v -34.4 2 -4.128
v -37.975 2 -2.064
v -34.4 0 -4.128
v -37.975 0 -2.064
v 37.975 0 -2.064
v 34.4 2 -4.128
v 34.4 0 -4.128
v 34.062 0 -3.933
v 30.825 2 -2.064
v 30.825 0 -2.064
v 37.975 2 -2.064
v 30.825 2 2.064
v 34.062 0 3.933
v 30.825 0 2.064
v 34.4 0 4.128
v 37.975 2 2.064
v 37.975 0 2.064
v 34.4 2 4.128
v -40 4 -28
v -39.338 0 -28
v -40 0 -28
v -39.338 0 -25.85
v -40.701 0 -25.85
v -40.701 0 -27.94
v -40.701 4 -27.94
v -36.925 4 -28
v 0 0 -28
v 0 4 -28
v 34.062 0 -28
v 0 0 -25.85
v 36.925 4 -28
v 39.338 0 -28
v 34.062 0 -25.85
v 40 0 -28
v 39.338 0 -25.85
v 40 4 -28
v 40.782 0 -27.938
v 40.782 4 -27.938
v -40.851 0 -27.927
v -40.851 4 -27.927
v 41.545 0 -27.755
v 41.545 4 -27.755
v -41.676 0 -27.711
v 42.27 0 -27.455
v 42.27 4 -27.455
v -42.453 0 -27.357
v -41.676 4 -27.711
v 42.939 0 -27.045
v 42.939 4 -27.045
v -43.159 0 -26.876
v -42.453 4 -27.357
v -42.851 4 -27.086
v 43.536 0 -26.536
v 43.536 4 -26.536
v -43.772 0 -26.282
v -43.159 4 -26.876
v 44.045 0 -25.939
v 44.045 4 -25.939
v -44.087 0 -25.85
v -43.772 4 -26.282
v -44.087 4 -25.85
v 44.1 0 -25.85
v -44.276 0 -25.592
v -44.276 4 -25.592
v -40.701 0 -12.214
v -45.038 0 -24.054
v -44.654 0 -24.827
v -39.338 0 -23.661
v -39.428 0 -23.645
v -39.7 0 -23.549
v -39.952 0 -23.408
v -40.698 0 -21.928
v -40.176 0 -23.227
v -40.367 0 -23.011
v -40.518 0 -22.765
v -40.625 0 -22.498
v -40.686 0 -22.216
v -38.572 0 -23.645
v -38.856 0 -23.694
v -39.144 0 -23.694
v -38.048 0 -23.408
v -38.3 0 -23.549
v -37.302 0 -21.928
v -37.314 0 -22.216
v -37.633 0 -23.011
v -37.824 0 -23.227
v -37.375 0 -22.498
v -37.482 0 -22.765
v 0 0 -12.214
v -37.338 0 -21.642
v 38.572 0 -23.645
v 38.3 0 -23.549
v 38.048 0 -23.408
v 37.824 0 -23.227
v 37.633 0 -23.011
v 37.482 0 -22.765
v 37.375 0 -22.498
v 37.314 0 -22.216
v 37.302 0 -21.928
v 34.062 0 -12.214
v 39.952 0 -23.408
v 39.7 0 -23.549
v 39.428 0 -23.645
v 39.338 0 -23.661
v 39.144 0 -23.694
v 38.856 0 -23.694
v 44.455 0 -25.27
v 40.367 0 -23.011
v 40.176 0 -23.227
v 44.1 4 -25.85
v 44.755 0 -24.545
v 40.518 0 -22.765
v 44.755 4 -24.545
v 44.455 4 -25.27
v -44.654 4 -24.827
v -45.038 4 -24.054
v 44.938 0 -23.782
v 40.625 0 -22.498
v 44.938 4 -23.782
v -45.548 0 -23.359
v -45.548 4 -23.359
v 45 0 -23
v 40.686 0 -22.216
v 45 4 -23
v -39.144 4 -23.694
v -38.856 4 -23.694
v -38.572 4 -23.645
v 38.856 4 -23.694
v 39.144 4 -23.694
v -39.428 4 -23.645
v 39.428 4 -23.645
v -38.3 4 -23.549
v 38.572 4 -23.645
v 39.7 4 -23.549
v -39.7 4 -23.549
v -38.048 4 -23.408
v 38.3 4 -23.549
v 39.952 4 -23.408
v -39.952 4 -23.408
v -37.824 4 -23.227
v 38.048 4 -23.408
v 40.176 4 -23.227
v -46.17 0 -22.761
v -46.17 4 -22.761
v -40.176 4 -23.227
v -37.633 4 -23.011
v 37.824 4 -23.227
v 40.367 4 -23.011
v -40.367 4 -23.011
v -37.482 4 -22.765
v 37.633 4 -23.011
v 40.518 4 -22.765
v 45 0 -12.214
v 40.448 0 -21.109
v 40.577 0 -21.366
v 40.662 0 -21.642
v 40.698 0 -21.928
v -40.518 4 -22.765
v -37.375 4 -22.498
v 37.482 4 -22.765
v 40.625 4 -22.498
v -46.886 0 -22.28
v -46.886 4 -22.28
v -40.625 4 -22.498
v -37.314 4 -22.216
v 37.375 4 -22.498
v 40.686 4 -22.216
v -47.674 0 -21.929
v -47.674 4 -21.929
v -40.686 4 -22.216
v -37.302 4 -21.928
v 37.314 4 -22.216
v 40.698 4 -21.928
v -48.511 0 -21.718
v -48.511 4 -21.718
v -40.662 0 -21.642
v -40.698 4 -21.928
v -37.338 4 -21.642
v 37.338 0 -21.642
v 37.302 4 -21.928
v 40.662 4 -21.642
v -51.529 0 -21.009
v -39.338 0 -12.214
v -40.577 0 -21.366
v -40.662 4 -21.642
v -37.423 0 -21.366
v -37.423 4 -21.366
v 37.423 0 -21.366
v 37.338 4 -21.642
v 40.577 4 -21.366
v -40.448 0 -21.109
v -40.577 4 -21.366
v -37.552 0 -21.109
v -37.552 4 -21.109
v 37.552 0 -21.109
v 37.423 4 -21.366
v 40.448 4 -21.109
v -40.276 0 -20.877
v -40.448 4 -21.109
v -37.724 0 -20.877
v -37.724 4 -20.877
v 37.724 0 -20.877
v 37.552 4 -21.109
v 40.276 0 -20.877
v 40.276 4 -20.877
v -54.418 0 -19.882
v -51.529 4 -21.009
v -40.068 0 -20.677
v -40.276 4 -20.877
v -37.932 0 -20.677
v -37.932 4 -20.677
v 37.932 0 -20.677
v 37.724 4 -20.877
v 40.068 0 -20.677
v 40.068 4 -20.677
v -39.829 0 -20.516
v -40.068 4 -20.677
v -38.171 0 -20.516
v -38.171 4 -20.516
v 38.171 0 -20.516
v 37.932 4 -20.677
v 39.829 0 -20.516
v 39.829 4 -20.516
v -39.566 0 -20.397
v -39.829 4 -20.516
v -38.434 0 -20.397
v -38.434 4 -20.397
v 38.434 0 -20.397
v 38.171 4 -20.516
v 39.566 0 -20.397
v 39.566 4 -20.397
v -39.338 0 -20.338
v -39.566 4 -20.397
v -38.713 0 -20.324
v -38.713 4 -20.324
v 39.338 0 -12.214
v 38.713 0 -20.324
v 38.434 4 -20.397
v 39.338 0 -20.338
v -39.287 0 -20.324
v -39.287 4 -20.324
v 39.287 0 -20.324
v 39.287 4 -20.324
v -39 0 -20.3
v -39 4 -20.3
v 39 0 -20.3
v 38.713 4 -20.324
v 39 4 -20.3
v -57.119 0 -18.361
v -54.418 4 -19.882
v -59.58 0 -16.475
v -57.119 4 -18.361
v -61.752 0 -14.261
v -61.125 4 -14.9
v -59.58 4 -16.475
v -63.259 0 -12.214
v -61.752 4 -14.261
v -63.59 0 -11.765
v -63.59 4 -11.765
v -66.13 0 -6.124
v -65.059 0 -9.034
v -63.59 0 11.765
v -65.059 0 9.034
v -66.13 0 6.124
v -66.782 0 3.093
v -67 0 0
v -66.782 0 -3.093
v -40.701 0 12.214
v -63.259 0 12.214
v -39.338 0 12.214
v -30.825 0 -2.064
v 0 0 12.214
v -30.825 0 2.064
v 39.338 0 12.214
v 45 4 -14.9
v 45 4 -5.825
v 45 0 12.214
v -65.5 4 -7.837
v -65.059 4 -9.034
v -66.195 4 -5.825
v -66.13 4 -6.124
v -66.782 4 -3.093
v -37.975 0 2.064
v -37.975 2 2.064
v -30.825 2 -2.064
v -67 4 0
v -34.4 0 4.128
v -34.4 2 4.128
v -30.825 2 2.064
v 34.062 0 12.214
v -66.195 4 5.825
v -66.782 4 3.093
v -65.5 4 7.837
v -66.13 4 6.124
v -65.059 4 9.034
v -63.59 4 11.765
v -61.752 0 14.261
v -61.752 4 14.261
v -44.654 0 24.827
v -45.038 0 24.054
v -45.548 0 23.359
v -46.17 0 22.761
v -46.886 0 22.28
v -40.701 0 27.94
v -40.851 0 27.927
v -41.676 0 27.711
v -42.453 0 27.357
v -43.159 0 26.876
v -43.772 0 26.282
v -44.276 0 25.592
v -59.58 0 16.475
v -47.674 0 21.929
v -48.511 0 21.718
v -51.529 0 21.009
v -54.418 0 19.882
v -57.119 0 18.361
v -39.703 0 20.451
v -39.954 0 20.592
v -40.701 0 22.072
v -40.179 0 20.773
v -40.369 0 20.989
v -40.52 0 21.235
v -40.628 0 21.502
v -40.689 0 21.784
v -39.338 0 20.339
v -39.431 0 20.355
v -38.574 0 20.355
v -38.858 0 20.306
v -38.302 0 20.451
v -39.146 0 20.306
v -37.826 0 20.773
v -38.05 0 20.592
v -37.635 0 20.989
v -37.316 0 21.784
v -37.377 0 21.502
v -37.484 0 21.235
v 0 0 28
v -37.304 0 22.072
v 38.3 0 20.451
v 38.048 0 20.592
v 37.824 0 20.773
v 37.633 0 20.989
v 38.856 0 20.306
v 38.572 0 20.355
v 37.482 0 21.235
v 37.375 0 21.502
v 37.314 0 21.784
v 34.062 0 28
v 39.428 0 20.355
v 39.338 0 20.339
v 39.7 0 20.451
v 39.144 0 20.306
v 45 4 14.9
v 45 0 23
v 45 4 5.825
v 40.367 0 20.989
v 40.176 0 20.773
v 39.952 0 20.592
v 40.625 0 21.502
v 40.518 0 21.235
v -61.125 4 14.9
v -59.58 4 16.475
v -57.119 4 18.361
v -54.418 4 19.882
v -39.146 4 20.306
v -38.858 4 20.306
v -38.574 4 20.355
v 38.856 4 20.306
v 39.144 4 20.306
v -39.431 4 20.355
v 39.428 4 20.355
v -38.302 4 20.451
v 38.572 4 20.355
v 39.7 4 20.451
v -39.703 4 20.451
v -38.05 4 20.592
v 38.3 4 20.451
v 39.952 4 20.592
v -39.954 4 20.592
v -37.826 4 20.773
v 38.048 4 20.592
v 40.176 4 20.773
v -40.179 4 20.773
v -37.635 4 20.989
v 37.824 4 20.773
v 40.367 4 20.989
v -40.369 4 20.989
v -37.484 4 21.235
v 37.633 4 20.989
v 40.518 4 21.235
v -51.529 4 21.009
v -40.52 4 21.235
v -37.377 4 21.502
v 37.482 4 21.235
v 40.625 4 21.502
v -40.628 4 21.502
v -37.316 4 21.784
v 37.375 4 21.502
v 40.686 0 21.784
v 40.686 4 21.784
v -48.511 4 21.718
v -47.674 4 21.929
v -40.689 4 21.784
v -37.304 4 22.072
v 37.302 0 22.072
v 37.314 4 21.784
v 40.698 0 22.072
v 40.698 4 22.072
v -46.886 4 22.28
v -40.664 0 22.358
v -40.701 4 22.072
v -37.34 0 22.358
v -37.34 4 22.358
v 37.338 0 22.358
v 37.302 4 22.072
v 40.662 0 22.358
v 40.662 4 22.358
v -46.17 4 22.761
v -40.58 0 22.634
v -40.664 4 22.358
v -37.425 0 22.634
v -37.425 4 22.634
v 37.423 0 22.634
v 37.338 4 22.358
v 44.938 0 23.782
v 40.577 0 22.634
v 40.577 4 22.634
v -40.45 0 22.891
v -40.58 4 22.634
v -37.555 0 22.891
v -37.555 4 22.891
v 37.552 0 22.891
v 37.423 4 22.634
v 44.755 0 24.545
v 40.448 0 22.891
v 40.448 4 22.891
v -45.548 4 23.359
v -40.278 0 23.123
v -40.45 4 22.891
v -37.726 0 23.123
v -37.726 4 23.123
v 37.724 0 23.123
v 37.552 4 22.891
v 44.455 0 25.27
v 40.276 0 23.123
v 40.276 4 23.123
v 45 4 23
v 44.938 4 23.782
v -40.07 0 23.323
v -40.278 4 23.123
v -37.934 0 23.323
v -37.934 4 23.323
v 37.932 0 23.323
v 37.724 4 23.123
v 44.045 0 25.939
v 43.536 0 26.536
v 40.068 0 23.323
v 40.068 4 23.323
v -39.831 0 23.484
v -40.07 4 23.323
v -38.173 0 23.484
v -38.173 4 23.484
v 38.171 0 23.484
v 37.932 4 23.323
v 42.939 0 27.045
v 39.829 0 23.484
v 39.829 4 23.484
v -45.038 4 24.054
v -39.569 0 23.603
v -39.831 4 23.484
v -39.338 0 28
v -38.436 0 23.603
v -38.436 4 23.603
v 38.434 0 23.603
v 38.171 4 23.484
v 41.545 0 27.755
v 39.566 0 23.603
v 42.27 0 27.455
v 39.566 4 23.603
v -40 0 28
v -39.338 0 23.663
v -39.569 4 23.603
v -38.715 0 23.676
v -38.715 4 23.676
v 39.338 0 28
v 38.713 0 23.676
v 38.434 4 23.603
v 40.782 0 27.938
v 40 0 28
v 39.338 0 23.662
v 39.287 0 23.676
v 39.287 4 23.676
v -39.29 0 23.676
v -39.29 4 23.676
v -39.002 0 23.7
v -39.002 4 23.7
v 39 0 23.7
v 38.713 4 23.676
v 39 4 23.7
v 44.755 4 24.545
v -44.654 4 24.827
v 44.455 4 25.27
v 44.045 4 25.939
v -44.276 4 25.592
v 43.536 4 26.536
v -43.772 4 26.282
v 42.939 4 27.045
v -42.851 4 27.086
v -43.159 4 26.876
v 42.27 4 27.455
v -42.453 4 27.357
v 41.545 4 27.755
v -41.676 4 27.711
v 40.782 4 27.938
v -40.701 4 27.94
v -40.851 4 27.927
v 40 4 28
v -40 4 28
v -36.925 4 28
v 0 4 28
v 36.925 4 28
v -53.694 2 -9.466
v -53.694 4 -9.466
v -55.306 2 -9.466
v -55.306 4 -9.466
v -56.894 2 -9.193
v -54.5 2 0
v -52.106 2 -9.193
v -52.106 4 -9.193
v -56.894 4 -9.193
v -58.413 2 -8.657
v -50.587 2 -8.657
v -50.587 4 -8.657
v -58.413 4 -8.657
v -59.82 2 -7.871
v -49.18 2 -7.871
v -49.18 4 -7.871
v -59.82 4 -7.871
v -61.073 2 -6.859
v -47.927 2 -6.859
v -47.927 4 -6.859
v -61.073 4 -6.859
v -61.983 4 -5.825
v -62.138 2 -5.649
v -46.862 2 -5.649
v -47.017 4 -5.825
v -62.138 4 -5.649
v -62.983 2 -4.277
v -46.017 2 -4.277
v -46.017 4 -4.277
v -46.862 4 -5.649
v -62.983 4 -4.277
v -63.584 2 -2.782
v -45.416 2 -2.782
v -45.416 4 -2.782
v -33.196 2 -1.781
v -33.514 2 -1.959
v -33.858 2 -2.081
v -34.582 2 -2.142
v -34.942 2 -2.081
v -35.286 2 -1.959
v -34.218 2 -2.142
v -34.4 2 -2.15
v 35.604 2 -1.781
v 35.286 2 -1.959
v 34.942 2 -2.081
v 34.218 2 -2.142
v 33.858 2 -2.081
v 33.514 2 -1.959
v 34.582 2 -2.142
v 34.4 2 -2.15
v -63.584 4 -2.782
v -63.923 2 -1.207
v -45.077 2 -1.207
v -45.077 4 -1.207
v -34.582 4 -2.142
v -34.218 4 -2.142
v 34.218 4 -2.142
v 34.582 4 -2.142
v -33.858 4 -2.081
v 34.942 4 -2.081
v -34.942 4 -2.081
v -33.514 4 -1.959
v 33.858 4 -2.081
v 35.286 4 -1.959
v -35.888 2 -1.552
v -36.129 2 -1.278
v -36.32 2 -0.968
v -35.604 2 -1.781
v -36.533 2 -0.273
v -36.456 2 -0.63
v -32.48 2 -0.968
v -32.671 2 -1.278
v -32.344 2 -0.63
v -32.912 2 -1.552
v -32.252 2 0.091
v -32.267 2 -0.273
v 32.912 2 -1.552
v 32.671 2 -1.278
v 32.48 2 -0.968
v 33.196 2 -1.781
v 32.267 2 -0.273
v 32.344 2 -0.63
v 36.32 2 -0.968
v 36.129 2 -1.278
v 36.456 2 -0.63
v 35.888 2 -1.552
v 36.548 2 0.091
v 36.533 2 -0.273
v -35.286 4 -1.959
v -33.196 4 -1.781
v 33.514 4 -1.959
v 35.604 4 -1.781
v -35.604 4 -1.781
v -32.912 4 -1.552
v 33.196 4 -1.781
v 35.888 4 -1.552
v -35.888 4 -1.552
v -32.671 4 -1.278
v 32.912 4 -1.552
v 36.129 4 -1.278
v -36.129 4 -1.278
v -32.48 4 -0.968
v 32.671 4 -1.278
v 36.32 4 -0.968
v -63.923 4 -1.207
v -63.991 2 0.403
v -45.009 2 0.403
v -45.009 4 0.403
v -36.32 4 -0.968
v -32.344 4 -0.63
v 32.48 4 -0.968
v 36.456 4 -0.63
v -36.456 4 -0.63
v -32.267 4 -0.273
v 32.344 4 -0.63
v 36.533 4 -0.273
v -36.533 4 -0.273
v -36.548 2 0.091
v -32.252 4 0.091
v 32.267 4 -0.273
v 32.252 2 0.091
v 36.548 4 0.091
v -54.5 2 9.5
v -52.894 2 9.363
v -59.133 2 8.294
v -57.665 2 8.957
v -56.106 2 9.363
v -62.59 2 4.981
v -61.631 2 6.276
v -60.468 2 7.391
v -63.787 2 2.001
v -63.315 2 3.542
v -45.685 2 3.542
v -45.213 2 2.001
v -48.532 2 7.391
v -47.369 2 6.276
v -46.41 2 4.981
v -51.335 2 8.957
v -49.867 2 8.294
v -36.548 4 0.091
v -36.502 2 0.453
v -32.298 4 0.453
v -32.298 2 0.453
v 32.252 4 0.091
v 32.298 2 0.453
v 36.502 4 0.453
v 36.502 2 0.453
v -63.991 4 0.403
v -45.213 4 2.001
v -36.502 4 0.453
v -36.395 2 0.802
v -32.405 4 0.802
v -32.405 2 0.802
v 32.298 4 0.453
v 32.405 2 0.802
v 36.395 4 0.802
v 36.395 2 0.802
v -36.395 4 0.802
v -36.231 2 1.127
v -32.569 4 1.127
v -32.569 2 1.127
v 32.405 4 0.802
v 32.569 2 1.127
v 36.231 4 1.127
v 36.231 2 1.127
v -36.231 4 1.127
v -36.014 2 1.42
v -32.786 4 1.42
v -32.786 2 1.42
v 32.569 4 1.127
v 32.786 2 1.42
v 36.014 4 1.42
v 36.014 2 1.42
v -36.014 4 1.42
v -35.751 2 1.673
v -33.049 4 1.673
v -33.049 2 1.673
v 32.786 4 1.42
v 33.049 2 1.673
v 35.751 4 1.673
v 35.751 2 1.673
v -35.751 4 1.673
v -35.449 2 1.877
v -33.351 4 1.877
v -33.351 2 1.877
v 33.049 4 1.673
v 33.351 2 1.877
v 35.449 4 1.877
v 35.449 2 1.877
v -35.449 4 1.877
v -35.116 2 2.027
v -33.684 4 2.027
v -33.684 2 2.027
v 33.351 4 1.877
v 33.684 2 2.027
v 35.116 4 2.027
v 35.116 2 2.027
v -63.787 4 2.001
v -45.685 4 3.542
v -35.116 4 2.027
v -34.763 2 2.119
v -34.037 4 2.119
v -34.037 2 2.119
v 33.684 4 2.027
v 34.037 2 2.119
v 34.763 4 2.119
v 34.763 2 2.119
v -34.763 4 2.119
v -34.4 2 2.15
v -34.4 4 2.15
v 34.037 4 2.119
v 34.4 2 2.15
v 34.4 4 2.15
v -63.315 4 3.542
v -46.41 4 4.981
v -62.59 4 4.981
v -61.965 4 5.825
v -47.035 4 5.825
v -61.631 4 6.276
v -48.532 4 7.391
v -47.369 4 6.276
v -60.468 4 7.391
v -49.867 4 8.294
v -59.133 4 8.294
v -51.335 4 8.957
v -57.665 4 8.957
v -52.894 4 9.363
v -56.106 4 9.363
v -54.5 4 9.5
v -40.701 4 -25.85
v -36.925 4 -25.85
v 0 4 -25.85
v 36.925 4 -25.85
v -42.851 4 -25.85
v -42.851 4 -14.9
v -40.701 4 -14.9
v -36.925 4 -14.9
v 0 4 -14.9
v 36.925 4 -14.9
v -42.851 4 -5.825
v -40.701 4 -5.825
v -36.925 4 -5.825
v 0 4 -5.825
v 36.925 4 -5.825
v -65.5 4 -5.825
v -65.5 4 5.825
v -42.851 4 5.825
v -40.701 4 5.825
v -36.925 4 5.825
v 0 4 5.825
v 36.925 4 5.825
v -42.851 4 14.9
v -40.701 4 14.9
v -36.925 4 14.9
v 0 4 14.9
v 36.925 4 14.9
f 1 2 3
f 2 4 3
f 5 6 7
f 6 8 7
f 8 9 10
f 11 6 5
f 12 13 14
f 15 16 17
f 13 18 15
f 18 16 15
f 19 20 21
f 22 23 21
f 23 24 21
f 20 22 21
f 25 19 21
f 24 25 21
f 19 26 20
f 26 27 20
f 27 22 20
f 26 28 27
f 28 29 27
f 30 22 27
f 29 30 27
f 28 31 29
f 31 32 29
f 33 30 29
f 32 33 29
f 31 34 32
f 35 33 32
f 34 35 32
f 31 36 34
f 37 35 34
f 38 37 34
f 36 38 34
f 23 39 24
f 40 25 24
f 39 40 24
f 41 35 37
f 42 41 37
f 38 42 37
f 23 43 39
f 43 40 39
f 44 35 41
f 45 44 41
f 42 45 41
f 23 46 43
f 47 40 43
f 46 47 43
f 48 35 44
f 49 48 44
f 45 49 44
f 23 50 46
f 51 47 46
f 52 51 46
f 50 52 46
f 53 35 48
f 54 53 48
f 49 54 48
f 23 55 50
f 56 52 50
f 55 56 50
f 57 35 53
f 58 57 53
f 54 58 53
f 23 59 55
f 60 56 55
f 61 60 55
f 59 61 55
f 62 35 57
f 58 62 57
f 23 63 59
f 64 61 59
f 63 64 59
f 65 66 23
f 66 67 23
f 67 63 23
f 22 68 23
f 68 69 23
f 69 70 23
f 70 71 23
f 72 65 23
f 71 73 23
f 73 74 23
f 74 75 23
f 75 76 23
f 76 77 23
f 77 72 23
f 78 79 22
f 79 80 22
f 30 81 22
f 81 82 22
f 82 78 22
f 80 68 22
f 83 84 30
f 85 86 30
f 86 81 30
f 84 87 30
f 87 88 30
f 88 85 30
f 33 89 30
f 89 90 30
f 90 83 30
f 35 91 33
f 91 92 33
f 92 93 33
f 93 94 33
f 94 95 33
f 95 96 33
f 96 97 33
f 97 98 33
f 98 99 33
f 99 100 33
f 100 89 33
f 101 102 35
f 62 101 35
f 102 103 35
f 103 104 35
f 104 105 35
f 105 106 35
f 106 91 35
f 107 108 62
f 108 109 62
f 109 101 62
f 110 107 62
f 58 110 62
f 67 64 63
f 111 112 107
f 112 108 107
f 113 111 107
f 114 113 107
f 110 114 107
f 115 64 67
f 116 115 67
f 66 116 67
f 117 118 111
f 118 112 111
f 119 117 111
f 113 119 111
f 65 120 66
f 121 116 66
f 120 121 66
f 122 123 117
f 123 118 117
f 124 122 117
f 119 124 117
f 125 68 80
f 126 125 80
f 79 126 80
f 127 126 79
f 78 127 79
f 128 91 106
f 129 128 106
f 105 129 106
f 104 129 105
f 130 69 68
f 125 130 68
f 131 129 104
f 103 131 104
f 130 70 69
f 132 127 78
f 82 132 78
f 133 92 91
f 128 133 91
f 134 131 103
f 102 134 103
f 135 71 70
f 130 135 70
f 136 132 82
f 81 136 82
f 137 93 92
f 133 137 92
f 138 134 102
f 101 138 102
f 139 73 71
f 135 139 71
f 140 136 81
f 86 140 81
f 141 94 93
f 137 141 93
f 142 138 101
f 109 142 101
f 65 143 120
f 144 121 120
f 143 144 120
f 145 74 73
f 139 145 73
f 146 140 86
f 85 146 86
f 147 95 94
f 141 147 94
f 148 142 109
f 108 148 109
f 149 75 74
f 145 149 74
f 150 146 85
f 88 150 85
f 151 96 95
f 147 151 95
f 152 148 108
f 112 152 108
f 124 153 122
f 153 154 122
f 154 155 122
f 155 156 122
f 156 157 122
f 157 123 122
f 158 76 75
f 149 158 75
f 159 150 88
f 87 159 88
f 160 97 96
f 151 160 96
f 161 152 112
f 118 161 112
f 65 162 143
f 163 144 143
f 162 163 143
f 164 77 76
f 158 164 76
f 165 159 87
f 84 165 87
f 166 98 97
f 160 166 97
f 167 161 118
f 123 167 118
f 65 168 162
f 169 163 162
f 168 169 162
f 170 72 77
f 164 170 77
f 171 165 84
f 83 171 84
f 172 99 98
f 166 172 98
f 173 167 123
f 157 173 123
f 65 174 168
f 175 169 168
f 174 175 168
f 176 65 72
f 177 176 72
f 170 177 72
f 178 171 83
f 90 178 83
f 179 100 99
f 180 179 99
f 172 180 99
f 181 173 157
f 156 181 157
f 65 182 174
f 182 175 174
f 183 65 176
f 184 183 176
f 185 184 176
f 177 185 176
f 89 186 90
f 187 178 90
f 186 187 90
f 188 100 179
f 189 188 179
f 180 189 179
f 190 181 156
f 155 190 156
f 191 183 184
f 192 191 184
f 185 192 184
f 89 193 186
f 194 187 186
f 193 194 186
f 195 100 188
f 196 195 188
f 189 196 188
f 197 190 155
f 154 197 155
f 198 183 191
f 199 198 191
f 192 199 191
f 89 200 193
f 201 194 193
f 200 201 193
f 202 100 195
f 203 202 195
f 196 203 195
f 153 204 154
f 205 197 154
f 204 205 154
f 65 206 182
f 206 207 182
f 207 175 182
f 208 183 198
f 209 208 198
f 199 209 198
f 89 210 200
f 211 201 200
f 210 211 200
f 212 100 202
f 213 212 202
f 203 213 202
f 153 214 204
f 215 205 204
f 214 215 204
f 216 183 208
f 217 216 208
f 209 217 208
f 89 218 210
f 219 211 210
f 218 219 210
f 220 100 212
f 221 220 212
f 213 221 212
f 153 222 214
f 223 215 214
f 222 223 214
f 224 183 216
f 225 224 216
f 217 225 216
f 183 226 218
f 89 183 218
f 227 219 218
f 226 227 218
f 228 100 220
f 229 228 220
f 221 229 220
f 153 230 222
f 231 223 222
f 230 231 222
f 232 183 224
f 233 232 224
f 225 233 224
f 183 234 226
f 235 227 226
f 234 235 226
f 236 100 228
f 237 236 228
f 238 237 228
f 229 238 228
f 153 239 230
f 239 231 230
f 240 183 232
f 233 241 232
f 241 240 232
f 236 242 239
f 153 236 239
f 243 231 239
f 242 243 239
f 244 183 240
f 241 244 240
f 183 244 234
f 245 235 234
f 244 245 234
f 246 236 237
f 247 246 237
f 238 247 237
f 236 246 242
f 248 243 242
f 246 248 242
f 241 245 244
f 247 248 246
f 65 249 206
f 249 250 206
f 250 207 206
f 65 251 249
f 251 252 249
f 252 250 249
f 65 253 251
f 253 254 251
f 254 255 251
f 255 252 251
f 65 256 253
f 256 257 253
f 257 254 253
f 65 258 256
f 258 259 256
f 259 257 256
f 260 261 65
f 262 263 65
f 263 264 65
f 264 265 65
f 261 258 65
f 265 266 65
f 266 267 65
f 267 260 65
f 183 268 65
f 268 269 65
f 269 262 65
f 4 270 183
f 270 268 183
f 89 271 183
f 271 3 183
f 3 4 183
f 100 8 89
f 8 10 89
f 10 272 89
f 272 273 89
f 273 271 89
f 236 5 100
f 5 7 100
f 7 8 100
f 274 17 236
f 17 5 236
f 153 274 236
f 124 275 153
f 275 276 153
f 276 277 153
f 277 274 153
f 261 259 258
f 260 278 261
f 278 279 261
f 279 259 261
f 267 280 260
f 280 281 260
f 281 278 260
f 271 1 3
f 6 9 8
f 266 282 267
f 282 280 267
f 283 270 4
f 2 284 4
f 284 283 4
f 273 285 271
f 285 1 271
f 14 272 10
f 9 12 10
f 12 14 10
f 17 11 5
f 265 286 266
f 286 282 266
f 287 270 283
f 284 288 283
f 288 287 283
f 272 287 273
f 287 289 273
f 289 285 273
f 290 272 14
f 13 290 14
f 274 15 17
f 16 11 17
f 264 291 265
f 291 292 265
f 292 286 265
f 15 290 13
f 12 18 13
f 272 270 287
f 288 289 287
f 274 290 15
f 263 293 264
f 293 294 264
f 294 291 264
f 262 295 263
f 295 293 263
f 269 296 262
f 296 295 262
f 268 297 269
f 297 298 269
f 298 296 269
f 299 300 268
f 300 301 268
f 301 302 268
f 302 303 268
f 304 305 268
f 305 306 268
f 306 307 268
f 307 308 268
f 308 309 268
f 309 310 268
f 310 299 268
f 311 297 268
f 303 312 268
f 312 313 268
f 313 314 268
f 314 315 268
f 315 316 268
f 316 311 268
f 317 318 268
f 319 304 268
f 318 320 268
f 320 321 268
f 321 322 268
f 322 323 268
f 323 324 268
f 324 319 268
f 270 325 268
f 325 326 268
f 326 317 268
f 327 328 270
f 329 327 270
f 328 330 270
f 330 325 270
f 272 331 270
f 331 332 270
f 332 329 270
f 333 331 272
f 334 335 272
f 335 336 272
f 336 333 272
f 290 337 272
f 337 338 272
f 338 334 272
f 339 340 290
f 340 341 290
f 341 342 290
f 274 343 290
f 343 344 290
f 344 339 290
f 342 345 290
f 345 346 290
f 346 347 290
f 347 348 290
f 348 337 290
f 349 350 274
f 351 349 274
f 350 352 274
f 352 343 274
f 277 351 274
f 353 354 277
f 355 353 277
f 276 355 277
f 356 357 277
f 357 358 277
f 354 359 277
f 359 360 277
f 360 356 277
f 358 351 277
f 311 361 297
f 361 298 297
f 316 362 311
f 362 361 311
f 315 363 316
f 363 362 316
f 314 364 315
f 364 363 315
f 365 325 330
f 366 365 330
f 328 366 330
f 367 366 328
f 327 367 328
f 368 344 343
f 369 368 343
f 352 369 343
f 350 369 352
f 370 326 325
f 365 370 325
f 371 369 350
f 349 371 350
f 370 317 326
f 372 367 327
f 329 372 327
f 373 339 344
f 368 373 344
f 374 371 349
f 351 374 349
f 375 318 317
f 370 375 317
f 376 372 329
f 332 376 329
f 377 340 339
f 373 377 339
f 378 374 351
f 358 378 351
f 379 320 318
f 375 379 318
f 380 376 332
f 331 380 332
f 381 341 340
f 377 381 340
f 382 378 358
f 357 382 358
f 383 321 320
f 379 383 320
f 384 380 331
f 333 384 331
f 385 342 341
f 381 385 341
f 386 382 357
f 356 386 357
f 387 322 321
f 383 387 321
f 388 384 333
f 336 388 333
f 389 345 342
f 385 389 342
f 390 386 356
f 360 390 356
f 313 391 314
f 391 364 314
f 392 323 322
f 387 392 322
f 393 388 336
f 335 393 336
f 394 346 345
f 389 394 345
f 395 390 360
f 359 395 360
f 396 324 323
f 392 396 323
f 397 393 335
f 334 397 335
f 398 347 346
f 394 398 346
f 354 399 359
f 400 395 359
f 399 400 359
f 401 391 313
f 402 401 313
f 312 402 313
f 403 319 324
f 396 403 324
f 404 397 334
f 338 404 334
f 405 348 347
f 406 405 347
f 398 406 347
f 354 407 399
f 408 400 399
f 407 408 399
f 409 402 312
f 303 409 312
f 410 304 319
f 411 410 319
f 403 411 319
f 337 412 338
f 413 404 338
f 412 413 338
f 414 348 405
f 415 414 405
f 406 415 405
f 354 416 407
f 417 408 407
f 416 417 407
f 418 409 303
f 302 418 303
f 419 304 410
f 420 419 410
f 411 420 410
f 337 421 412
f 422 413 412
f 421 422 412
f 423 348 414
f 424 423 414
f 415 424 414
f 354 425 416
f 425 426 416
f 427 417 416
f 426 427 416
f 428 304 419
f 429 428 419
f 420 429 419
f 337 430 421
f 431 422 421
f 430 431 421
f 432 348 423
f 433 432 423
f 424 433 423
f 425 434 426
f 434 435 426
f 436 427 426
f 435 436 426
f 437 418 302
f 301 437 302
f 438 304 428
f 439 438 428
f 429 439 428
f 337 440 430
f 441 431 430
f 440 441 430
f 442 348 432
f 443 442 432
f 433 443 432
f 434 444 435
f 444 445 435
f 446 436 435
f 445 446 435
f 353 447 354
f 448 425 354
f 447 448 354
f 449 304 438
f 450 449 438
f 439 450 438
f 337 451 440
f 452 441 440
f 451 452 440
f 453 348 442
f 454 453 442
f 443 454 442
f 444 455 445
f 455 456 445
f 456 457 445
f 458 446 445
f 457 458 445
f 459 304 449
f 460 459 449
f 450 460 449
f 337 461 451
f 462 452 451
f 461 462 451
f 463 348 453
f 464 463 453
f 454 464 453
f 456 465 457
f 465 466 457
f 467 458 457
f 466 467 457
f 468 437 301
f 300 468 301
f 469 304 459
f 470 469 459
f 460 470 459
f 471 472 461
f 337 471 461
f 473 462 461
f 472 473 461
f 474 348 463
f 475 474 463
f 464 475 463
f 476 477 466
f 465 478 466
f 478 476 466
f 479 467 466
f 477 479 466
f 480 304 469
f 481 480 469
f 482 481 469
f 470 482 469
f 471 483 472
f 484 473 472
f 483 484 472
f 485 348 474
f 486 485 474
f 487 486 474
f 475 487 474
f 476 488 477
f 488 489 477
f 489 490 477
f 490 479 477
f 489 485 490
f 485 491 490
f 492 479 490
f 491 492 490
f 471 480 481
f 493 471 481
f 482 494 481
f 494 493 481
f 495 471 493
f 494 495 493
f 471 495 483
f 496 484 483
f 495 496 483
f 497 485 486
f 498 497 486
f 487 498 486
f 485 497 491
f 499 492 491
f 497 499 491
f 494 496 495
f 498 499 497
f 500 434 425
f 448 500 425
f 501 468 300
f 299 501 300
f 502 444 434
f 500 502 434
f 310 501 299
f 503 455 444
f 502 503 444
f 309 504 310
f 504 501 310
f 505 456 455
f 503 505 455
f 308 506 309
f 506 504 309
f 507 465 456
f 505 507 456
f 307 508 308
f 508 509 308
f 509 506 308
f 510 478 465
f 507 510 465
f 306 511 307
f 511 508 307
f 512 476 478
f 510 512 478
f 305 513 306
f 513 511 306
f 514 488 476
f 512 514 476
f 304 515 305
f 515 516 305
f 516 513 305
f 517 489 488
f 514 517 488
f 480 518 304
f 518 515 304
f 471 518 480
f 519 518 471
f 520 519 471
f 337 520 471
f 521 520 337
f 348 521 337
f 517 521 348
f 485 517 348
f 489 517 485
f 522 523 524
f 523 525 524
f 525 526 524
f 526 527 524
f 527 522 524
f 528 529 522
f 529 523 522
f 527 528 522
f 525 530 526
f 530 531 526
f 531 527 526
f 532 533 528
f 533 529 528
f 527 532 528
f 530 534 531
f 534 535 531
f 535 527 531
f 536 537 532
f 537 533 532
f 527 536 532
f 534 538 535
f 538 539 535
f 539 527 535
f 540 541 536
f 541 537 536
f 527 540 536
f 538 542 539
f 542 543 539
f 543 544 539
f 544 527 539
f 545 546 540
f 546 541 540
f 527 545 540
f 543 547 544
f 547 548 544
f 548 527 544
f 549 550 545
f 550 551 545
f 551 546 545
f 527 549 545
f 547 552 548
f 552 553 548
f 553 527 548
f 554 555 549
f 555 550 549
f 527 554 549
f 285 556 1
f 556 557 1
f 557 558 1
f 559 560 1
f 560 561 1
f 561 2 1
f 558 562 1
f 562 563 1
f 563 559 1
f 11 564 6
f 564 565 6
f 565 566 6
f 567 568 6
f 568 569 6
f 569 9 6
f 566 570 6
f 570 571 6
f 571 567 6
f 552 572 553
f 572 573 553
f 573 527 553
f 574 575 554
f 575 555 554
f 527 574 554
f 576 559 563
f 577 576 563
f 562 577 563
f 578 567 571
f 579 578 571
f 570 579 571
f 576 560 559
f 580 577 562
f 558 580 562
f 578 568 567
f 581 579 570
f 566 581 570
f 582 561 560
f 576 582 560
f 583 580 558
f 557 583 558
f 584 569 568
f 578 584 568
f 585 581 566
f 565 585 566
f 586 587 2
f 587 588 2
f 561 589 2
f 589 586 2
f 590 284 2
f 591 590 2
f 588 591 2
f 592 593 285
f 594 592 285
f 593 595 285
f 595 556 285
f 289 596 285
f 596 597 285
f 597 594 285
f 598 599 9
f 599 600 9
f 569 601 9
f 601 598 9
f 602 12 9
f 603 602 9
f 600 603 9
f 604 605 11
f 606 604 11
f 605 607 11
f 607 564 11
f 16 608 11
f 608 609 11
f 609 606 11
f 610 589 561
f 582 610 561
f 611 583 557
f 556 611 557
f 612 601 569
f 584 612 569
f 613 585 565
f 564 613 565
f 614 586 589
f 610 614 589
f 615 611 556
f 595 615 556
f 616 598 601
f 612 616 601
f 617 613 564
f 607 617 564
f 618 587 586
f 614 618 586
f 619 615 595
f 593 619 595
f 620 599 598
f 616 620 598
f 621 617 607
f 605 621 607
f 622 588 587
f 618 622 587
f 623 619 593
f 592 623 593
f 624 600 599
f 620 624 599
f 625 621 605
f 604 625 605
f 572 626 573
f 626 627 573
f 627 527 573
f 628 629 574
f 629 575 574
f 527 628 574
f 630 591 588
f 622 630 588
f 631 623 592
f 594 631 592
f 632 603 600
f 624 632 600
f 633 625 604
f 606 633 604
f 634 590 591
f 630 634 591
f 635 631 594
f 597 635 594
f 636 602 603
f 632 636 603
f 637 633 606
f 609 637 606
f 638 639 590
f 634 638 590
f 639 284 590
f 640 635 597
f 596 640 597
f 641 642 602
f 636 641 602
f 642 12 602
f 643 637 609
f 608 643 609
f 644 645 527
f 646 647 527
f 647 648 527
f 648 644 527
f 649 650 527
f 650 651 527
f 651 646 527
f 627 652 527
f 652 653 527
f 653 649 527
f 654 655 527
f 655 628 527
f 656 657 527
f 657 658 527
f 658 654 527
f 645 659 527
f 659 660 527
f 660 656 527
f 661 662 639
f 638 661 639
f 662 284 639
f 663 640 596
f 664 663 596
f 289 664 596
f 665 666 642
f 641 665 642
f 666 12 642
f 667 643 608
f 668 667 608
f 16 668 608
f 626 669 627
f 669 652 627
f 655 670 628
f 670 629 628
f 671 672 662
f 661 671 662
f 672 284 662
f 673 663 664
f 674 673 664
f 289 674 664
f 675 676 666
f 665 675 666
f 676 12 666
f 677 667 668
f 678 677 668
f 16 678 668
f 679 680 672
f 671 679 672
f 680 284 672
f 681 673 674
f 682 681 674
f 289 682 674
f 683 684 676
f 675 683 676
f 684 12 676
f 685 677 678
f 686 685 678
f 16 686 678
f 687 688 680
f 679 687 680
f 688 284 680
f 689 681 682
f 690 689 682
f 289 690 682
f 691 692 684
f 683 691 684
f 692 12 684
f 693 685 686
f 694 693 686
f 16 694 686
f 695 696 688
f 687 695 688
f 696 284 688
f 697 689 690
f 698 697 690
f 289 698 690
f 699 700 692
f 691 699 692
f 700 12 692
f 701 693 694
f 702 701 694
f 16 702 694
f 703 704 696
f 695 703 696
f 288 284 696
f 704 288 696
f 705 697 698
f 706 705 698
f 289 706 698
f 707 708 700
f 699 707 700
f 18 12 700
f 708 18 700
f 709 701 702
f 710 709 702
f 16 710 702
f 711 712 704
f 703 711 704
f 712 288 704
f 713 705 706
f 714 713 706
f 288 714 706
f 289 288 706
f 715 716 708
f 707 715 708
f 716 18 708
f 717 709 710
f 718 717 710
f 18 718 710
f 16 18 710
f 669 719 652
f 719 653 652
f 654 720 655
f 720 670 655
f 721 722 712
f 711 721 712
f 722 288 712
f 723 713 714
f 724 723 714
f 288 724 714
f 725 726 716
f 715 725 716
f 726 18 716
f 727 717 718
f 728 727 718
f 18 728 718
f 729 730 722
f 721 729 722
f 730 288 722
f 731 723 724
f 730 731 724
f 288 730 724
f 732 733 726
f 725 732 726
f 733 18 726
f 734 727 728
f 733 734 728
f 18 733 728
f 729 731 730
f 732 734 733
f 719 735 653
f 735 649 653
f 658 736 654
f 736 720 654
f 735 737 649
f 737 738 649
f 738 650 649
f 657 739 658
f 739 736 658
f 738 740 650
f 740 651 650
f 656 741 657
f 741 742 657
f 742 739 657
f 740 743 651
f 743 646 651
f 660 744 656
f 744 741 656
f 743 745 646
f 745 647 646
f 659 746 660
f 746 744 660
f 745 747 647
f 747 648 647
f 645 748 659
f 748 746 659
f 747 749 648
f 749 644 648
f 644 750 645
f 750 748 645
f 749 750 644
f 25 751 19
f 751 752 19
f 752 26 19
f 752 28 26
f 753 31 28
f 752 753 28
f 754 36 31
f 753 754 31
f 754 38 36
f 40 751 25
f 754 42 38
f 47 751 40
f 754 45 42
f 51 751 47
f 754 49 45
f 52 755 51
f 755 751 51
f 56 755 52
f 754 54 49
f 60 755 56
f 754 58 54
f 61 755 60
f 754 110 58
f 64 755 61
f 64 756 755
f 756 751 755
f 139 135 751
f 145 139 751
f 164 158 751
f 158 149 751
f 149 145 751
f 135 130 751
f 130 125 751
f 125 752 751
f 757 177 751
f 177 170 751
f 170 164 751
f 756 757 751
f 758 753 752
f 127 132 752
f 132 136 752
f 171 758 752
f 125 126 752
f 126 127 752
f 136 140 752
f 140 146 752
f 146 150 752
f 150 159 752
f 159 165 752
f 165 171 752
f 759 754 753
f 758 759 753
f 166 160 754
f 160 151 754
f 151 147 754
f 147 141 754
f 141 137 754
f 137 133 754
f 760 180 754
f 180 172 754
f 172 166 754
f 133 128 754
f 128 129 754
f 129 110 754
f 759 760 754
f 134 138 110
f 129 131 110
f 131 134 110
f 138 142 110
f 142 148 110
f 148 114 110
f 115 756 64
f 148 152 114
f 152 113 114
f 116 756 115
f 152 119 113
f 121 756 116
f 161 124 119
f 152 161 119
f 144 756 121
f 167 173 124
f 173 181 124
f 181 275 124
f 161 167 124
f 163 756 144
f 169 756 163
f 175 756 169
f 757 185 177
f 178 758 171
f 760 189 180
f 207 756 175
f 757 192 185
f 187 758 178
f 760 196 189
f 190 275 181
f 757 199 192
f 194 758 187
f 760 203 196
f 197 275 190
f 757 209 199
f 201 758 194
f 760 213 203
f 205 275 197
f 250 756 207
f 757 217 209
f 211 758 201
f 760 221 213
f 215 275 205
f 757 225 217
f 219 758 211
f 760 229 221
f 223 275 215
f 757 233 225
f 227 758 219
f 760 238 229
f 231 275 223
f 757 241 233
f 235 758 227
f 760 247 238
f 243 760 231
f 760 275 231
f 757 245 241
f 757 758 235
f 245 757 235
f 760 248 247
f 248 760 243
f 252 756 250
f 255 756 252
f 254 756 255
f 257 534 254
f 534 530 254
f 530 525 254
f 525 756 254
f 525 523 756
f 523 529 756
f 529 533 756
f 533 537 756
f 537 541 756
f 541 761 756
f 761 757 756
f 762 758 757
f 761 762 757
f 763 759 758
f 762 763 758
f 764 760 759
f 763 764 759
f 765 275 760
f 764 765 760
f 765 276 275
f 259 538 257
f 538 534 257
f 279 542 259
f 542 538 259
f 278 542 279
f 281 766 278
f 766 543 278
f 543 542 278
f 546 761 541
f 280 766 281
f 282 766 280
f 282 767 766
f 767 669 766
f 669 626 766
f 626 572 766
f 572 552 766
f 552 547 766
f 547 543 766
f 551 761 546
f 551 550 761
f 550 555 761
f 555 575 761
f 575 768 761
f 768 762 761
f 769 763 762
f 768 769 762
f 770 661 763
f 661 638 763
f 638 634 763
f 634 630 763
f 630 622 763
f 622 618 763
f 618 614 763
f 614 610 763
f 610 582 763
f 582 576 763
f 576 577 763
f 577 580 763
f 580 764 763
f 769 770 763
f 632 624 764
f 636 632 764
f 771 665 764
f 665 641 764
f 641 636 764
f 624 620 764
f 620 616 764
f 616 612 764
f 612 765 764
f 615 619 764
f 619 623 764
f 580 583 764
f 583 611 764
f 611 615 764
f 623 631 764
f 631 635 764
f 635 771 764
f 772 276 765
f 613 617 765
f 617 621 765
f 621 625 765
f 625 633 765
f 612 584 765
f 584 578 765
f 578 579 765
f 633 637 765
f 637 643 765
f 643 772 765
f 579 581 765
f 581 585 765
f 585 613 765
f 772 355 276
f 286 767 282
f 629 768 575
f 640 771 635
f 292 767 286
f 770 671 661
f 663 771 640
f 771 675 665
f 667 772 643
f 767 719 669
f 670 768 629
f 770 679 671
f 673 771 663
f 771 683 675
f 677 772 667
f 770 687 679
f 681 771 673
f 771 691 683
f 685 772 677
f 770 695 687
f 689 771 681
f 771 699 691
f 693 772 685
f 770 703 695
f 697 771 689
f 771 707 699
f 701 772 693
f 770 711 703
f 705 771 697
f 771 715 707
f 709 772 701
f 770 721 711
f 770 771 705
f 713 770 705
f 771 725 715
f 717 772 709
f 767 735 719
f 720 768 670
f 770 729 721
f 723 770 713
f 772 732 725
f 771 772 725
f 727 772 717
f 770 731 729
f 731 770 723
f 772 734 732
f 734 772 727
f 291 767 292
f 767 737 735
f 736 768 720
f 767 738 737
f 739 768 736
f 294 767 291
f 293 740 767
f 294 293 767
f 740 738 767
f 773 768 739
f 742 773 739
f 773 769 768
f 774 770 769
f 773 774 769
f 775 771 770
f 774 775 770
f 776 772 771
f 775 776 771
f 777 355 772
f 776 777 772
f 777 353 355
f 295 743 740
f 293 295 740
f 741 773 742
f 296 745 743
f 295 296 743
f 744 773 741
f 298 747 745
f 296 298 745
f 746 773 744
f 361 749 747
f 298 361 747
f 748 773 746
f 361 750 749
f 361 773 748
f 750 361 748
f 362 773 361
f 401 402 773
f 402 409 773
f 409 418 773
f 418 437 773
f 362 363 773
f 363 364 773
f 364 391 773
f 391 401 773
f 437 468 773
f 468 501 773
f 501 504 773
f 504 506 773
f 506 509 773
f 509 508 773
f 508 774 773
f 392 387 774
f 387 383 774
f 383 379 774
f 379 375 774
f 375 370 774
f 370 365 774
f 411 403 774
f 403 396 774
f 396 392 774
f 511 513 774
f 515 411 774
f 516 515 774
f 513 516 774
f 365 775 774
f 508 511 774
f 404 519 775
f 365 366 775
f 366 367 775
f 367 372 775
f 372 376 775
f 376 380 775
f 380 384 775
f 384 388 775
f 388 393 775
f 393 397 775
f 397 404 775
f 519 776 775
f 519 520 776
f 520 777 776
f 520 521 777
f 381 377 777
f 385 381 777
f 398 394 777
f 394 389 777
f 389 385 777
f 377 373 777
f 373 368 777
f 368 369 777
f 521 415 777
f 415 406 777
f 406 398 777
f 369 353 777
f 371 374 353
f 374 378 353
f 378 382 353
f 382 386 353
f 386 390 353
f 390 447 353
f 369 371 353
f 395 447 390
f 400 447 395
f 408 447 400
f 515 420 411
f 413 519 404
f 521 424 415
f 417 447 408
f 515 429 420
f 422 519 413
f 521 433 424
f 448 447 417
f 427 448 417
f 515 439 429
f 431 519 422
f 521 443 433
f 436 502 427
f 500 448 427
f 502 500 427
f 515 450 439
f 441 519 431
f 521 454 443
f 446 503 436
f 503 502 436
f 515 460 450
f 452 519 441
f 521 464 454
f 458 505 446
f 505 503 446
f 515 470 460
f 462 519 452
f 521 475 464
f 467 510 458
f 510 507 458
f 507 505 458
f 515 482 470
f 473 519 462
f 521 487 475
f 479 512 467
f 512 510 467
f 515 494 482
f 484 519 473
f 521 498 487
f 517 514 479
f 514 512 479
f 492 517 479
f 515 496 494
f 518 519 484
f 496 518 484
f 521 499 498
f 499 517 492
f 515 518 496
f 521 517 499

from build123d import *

# Parameters (mm, degrees)
SKETCH1_W           = 90
SKETCH1_H           = 56
BOSS_EXTRUDE1_DEPTH = 4
SKETCH2_R           = 2.15
SKETCH2_R_2         = 1.7
CUT_EXTRUDE1_DEPTH  = 4
CUT_EXTRUDE2_DEPTH  = 2
BOSS_EXTRUDE3_DEPTH = 4
SKETCH6_R           = 9.5
CUT_EXTRUDE3_DEPTH  = 2
FILLET1_R           = 5
FILLET2_R           = 5


with BuildPart() as part:
    # Sketch1 → Boss-Extrude1 (new body)
    with BuildSketch(Plane(origin=(0, 0, 0), x_dir=(1, 0, 0), z_dir=(0, 1, 0))):
        Rectangle(SKETCH1_W, SKETCH1_H)
    extrude(amount=BOSS_EXTRUDE1_DEPTH)

    # Sketch2 → Cut-Extrude1 (cut)
    with BuildSketch(Plane(origin=(0, 4, 0), x_dir=(1, 0, 0), z_dir=(0, 1, 0))):
        with Locations(Location((-34.4, 0, 0), (0, 0, 270))):
            Circle(SKETCH2_R)
        with Locations(Location((34.4, 0, 0), (0, 0, 270))):
            Circle(SKETCH2_R)
        with Locations(Location((-39.002290859, -22, 0), (0, 0, 270))):
            Circle(SKETCH2_R_2)
        with Locations(Location((39, -22, 0), (0, 0, 270))):
            Circle(SKETCH2_R_2)
        with Locations(Location((39, 22, 0), (0, 0, 270))):
            Circle(SKETCH2_R_2)
        with Locations(Location((-39, 22, 0), (0, 0, 270))):
            Circle(SKETCH2_R_2)
    extrude(amount=-CUT_EXTRUDE1_DEPTH, mode=Mode.SUBTRACT)

    # Sketch3 → Cut-Extrude2 (cut)
    with BuildSketch(Plane.XZ):
        Polygon((30.825, -2.064027212), (34.4, -4.128054425), (37.975, -2.064027212), (37.975, 2.064027212), (34.4, 4.128054425), (30.825, 2.064027212), align=None)
        Polygon((-37.975, -2.064027212), (-34.4, -4.128054425), (-30.825, -2.064027212), (-30.825, 2.064027212), (-34.4, 4.128054425), (-37.975, 2.064027212), align=None)
    extrude(amount=-CUT_EXTRUDE2_DEPTH, mode=Mode.SUBTRACT)

    # Sketch4 → Boss-Extrude3 (add)
    with BuildSketch(Plane(origin=(0, 4, 0), x_dir=(1, 0, 0), z_dir=(0, 1, 0))):
        with BuildLine():
            Line((-45, -22), (-45, 22))
            ThreePointArc((-45, 22), (-67, 0), (-45, -22))
        make_face()
    extrude(amount=-BOSS_EXTRUDE3_DEPTH)

    # Sketch6 → Cut-Extrude3 (cut)
    with BuildSketch(Plane(origin=(0, 4, 0), x_dir=(1, 0, 0), z_dir=(0, 1, 0))):
        with Locations(Location((-54.5, 0, 0), (0, 0, 270))):
            Circle(SKETCH6_R)
    extrude(amount=-CUT_EXTRUDE3_DEPTH, mode=Mode.SUBTRACT)

    # Fillet1
    fillet1_edges = [part.edges().sort_by_distance(p)[0] for p in [
        (-45, 2, -28),
        (45, 2, -28),
        (45, 2, 28),
        (-45, 2, 28),
    ]]
    fillet(fillet1_edges, radius=FILLET1_R)

    # Fillet2
    fillet2_edges = [part.edges().sort_by_distance(p)[0] for p in [
        (-45, 2, -22),
        (-45, 2, 22),
    ]]
    fillet(fillet2_edges, radius=FILLET2_R)


solid = part.part
